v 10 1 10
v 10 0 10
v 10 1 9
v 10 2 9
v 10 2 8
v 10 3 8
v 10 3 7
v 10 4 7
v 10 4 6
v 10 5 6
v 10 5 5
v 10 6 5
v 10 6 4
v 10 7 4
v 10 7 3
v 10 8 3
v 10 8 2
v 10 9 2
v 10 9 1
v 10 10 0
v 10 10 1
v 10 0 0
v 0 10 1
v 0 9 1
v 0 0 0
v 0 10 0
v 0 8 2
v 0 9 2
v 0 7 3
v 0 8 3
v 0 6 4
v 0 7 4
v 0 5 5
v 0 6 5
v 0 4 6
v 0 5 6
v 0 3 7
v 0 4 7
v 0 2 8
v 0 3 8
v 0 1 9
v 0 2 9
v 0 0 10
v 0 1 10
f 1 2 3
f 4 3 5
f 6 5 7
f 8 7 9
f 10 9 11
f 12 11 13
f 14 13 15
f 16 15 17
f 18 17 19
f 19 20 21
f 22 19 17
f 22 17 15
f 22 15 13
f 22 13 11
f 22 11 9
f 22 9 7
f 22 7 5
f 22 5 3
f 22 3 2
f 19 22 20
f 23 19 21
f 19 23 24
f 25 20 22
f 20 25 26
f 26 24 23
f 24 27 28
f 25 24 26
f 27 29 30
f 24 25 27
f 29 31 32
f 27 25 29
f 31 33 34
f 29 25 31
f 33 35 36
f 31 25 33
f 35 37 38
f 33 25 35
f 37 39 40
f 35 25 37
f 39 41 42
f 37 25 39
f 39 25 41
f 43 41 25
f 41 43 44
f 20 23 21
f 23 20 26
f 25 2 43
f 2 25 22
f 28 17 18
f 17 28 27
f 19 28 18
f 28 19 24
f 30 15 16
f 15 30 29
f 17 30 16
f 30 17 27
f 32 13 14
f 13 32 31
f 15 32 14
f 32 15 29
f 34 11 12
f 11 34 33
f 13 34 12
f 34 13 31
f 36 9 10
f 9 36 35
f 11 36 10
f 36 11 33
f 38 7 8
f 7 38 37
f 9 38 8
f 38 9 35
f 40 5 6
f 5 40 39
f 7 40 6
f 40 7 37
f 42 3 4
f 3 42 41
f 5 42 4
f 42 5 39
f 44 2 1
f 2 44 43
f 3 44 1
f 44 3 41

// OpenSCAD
STAIR_WIDTH = 10;
STAIR_HEIGHT = 1;
STAIR_STEPS = 10;

for (i = [0: STAIR_STEPS]) {
    translate([0, 0, i*STAIR_HEIGHT])
    cube([STAIR_WIDTH, STAIR_STEPS-i, STAIR_HEIGHT]);
}
